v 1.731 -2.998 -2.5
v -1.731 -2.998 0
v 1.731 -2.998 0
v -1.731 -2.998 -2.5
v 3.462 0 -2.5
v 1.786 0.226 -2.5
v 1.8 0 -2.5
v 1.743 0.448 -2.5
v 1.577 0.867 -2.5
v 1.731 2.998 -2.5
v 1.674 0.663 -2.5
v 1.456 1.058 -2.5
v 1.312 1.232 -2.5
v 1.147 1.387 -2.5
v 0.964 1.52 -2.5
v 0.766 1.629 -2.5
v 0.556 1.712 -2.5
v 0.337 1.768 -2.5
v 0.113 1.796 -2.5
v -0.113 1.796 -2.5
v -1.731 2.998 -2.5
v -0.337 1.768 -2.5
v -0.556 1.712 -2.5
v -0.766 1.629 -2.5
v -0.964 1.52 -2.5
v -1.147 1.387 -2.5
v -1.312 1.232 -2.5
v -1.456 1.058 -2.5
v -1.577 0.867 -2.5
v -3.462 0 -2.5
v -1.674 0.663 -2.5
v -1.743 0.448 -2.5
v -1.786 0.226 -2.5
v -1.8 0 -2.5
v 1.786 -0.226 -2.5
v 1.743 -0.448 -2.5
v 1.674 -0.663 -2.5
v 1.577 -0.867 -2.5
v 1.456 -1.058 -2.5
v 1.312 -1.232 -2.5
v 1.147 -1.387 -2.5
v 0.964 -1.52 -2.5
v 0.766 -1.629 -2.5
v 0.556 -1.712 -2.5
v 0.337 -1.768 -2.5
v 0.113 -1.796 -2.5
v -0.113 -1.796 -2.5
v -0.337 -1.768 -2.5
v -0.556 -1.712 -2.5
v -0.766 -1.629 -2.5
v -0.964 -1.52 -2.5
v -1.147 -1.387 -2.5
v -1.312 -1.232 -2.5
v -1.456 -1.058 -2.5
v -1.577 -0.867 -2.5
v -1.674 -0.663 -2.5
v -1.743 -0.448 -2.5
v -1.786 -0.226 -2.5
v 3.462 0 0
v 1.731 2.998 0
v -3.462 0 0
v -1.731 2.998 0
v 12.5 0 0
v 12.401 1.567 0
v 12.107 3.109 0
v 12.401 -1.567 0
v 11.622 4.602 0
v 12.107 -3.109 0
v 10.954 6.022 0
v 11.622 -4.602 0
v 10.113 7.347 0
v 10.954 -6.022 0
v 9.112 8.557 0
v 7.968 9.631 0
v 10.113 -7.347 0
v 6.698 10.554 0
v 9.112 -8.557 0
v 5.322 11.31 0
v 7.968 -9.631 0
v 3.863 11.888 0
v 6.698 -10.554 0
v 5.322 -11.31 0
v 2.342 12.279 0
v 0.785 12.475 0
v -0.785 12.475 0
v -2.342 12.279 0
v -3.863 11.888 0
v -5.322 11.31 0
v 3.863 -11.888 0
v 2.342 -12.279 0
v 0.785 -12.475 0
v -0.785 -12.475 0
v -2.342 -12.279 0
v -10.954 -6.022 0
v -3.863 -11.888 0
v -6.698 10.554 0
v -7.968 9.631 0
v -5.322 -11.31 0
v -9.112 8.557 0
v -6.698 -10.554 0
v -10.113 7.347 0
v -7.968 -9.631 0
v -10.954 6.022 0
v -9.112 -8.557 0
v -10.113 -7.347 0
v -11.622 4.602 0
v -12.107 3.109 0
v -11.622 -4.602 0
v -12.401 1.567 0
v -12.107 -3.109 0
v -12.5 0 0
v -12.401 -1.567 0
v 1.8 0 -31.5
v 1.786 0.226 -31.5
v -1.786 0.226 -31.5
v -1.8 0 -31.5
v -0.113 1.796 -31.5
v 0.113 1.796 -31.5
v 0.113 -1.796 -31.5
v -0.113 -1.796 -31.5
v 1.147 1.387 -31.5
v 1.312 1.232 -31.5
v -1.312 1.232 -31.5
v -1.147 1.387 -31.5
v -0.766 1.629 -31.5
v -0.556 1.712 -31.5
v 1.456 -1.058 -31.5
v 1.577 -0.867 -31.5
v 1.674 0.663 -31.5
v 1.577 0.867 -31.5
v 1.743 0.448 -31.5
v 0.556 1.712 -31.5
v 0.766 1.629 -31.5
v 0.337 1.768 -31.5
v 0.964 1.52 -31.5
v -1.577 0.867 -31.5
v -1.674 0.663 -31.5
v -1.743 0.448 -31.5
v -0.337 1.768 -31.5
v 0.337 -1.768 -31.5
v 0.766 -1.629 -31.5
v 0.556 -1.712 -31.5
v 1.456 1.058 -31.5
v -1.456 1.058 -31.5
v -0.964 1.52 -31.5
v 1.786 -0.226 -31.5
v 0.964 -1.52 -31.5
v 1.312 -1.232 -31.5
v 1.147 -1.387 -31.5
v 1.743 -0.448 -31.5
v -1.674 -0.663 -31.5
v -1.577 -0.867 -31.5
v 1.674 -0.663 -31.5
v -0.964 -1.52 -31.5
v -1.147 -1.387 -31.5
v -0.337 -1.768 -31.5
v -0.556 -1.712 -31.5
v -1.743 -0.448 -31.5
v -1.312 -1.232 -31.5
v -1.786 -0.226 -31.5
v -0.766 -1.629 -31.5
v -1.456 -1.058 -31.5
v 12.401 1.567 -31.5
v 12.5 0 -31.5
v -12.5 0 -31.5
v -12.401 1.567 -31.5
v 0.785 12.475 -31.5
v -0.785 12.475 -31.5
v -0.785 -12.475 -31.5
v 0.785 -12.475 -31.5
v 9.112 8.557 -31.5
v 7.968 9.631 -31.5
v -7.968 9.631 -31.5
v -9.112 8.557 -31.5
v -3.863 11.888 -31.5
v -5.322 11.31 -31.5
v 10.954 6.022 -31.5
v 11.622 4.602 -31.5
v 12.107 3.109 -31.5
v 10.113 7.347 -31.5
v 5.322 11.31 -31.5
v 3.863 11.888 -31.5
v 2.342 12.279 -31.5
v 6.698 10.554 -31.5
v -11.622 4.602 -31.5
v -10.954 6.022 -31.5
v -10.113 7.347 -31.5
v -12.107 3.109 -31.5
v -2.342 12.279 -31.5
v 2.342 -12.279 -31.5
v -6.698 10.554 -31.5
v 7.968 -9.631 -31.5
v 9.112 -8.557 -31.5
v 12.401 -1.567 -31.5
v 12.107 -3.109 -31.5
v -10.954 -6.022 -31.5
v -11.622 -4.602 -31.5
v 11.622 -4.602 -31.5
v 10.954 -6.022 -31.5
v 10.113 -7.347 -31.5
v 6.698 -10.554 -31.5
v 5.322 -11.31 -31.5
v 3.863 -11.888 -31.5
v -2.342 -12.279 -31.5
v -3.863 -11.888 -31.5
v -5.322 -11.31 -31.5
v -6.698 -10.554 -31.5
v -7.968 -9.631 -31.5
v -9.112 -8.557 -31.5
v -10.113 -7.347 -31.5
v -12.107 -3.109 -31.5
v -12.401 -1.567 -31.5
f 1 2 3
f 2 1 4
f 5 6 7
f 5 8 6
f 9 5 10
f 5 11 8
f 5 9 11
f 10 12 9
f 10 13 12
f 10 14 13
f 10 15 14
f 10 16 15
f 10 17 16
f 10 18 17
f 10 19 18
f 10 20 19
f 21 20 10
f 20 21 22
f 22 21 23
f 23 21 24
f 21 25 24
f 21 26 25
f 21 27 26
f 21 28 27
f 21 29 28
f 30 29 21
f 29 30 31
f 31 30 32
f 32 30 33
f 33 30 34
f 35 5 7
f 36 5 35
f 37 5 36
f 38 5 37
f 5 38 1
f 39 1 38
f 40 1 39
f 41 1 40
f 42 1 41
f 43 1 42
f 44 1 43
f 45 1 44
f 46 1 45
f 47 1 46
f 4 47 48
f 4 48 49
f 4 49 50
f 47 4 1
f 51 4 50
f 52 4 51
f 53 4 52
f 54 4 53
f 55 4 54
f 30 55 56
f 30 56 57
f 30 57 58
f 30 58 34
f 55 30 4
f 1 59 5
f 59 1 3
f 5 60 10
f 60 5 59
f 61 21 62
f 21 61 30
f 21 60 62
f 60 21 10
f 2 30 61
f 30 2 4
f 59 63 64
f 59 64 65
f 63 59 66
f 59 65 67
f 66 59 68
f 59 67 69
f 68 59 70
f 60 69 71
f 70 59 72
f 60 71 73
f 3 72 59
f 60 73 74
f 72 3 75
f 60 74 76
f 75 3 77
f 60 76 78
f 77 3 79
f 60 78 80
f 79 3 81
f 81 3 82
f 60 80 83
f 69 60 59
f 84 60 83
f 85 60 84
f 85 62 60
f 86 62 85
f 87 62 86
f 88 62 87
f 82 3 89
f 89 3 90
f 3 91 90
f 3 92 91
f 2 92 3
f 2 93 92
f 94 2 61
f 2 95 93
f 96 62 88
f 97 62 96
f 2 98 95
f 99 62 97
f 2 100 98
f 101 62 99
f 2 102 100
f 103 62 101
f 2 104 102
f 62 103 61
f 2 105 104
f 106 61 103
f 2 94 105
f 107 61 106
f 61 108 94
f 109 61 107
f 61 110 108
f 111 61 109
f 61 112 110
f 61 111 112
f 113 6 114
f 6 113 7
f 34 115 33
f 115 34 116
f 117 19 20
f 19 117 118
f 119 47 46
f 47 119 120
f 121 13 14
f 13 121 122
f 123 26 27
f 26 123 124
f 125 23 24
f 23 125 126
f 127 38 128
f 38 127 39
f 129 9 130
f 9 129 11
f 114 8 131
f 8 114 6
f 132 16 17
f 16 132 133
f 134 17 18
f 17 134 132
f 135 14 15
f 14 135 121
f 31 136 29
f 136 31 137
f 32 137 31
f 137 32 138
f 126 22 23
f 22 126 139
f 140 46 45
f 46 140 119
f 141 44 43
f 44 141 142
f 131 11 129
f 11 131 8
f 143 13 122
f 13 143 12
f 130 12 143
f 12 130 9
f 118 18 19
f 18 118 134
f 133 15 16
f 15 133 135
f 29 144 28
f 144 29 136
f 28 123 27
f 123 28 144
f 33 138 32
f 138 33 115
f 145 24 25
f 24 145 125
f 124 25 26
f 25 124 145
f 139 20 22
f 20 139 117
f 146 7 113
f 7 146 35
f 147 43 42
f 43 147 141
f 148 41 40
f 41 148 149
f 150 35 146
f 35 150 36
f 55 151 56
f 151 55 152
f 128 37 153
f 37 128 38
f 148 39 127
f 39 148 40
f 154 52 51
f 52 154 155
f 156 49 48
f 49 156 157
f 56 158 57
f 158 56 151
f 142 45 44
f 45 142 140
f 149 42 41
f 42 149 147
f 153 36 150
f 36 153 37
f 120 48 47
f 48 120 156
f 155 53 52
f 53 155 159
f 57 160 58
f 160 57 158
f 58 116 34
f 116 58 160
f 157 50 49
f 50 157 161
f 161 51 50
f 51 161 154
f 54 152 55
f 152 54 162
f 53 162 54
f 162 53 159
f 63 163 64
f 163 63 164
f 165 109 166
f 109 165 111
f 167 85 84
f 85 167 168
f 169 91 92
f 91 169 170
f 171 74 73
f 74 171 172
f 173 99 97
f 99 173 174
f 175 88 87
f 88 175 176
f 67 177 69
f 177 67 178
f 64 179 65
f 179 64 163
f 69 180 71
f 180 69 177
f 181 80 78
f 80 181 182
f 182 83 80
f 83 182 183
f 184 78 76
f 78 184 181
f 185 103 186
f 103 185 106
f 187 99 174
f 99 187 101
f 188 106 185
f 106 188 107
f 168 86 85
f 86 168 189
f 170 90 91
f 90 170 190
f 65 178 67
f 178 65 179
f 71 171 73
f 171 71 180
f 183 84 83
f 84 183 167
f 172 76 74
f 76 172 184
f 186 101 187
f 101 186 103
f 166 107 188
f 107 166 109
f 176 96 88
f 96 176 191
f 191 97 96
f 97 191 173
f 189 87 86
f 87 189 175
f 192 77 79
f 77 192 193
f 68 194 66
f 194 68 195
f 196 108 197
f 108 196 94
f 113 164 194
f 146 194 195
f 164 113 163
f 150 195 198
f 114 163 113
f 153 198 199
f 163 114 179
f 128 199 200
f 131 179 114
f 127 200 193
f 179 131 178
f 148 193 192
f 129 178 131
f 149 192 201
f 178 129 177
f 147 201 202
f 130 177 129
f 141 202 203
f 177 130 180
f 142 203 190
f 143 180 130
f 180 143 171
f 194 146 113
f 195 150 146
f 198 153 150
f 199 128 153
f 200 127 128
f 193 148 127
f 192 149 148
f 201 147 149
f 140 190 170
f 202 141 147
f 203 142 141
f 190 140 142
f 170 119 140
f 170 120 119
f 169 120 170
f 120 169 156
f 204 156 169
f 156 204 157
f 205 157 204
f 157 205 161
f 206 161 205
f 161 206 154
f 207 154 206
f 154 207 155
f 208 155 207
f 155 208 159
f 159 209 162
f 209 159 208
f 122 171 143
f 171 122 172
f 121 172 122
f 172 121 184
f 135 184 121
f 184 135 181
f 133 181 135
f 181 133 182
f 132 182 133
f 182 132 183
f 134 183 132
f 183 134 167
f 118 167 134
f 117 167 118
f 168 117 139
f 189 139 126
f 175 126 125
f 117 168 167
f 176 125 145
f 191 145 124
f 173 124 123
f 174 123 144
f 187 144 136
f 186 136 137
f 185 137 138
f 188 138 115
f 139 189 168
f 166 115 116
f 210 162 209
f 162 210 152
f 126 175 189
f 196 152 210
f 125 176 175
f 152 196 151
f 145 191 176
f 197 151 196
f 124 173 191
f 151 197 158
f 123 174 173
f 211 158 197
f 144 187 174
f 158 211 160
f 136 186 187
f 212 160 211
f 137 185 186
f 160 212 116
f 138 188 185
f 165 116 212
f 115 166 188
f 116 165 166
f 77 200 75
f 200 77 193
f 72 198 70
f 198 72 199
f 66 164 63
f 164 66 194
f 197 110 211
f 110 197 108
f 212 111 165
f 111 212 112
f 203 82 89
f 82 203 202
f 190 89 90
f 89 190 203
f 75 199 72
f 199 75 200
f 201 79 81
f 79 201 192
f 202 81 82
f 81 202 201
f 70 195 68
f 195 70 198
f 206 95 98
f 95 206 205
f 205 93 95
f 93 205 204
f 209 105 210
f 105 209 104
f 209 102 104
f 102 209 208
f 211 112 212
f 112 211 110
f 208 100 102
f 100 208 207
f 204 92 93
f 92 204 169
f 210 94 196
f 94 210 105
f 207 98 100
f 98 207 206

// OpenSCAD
$fn = 50;

difference() {
	union() {
		translate(v = [0, 0, -31.5]) {
			cylinder(h = 31.5, r = 12.5);
		}
	}
	union() {
		translate(v = [0, 0, 0]) {
			rotate(a = [0, 0, 0]) {
				difference() {
					union() {
						translate(v = [0, 0, -2.5]) {
							linear_extrude(height = 2.5) {
								polygon(points = [[3.4619999999999997, 0.0], [1.7310000000000003, 2.9981799479017264], [-1.7309999999999992, 2.9981799479017264], [-3.4619999999999997, 4.2397272186481365e-16], [-1.7310000000000014, -2.998179947901726], [1.7309999999999977, -2.9981799479017277]]);
							}
						}
					}
					union();
				}
			}
		}
		#translate(v = [0, 0, -100.0]) {
			cylinder(h = 200, r = 1.8);
		}
	}
}
